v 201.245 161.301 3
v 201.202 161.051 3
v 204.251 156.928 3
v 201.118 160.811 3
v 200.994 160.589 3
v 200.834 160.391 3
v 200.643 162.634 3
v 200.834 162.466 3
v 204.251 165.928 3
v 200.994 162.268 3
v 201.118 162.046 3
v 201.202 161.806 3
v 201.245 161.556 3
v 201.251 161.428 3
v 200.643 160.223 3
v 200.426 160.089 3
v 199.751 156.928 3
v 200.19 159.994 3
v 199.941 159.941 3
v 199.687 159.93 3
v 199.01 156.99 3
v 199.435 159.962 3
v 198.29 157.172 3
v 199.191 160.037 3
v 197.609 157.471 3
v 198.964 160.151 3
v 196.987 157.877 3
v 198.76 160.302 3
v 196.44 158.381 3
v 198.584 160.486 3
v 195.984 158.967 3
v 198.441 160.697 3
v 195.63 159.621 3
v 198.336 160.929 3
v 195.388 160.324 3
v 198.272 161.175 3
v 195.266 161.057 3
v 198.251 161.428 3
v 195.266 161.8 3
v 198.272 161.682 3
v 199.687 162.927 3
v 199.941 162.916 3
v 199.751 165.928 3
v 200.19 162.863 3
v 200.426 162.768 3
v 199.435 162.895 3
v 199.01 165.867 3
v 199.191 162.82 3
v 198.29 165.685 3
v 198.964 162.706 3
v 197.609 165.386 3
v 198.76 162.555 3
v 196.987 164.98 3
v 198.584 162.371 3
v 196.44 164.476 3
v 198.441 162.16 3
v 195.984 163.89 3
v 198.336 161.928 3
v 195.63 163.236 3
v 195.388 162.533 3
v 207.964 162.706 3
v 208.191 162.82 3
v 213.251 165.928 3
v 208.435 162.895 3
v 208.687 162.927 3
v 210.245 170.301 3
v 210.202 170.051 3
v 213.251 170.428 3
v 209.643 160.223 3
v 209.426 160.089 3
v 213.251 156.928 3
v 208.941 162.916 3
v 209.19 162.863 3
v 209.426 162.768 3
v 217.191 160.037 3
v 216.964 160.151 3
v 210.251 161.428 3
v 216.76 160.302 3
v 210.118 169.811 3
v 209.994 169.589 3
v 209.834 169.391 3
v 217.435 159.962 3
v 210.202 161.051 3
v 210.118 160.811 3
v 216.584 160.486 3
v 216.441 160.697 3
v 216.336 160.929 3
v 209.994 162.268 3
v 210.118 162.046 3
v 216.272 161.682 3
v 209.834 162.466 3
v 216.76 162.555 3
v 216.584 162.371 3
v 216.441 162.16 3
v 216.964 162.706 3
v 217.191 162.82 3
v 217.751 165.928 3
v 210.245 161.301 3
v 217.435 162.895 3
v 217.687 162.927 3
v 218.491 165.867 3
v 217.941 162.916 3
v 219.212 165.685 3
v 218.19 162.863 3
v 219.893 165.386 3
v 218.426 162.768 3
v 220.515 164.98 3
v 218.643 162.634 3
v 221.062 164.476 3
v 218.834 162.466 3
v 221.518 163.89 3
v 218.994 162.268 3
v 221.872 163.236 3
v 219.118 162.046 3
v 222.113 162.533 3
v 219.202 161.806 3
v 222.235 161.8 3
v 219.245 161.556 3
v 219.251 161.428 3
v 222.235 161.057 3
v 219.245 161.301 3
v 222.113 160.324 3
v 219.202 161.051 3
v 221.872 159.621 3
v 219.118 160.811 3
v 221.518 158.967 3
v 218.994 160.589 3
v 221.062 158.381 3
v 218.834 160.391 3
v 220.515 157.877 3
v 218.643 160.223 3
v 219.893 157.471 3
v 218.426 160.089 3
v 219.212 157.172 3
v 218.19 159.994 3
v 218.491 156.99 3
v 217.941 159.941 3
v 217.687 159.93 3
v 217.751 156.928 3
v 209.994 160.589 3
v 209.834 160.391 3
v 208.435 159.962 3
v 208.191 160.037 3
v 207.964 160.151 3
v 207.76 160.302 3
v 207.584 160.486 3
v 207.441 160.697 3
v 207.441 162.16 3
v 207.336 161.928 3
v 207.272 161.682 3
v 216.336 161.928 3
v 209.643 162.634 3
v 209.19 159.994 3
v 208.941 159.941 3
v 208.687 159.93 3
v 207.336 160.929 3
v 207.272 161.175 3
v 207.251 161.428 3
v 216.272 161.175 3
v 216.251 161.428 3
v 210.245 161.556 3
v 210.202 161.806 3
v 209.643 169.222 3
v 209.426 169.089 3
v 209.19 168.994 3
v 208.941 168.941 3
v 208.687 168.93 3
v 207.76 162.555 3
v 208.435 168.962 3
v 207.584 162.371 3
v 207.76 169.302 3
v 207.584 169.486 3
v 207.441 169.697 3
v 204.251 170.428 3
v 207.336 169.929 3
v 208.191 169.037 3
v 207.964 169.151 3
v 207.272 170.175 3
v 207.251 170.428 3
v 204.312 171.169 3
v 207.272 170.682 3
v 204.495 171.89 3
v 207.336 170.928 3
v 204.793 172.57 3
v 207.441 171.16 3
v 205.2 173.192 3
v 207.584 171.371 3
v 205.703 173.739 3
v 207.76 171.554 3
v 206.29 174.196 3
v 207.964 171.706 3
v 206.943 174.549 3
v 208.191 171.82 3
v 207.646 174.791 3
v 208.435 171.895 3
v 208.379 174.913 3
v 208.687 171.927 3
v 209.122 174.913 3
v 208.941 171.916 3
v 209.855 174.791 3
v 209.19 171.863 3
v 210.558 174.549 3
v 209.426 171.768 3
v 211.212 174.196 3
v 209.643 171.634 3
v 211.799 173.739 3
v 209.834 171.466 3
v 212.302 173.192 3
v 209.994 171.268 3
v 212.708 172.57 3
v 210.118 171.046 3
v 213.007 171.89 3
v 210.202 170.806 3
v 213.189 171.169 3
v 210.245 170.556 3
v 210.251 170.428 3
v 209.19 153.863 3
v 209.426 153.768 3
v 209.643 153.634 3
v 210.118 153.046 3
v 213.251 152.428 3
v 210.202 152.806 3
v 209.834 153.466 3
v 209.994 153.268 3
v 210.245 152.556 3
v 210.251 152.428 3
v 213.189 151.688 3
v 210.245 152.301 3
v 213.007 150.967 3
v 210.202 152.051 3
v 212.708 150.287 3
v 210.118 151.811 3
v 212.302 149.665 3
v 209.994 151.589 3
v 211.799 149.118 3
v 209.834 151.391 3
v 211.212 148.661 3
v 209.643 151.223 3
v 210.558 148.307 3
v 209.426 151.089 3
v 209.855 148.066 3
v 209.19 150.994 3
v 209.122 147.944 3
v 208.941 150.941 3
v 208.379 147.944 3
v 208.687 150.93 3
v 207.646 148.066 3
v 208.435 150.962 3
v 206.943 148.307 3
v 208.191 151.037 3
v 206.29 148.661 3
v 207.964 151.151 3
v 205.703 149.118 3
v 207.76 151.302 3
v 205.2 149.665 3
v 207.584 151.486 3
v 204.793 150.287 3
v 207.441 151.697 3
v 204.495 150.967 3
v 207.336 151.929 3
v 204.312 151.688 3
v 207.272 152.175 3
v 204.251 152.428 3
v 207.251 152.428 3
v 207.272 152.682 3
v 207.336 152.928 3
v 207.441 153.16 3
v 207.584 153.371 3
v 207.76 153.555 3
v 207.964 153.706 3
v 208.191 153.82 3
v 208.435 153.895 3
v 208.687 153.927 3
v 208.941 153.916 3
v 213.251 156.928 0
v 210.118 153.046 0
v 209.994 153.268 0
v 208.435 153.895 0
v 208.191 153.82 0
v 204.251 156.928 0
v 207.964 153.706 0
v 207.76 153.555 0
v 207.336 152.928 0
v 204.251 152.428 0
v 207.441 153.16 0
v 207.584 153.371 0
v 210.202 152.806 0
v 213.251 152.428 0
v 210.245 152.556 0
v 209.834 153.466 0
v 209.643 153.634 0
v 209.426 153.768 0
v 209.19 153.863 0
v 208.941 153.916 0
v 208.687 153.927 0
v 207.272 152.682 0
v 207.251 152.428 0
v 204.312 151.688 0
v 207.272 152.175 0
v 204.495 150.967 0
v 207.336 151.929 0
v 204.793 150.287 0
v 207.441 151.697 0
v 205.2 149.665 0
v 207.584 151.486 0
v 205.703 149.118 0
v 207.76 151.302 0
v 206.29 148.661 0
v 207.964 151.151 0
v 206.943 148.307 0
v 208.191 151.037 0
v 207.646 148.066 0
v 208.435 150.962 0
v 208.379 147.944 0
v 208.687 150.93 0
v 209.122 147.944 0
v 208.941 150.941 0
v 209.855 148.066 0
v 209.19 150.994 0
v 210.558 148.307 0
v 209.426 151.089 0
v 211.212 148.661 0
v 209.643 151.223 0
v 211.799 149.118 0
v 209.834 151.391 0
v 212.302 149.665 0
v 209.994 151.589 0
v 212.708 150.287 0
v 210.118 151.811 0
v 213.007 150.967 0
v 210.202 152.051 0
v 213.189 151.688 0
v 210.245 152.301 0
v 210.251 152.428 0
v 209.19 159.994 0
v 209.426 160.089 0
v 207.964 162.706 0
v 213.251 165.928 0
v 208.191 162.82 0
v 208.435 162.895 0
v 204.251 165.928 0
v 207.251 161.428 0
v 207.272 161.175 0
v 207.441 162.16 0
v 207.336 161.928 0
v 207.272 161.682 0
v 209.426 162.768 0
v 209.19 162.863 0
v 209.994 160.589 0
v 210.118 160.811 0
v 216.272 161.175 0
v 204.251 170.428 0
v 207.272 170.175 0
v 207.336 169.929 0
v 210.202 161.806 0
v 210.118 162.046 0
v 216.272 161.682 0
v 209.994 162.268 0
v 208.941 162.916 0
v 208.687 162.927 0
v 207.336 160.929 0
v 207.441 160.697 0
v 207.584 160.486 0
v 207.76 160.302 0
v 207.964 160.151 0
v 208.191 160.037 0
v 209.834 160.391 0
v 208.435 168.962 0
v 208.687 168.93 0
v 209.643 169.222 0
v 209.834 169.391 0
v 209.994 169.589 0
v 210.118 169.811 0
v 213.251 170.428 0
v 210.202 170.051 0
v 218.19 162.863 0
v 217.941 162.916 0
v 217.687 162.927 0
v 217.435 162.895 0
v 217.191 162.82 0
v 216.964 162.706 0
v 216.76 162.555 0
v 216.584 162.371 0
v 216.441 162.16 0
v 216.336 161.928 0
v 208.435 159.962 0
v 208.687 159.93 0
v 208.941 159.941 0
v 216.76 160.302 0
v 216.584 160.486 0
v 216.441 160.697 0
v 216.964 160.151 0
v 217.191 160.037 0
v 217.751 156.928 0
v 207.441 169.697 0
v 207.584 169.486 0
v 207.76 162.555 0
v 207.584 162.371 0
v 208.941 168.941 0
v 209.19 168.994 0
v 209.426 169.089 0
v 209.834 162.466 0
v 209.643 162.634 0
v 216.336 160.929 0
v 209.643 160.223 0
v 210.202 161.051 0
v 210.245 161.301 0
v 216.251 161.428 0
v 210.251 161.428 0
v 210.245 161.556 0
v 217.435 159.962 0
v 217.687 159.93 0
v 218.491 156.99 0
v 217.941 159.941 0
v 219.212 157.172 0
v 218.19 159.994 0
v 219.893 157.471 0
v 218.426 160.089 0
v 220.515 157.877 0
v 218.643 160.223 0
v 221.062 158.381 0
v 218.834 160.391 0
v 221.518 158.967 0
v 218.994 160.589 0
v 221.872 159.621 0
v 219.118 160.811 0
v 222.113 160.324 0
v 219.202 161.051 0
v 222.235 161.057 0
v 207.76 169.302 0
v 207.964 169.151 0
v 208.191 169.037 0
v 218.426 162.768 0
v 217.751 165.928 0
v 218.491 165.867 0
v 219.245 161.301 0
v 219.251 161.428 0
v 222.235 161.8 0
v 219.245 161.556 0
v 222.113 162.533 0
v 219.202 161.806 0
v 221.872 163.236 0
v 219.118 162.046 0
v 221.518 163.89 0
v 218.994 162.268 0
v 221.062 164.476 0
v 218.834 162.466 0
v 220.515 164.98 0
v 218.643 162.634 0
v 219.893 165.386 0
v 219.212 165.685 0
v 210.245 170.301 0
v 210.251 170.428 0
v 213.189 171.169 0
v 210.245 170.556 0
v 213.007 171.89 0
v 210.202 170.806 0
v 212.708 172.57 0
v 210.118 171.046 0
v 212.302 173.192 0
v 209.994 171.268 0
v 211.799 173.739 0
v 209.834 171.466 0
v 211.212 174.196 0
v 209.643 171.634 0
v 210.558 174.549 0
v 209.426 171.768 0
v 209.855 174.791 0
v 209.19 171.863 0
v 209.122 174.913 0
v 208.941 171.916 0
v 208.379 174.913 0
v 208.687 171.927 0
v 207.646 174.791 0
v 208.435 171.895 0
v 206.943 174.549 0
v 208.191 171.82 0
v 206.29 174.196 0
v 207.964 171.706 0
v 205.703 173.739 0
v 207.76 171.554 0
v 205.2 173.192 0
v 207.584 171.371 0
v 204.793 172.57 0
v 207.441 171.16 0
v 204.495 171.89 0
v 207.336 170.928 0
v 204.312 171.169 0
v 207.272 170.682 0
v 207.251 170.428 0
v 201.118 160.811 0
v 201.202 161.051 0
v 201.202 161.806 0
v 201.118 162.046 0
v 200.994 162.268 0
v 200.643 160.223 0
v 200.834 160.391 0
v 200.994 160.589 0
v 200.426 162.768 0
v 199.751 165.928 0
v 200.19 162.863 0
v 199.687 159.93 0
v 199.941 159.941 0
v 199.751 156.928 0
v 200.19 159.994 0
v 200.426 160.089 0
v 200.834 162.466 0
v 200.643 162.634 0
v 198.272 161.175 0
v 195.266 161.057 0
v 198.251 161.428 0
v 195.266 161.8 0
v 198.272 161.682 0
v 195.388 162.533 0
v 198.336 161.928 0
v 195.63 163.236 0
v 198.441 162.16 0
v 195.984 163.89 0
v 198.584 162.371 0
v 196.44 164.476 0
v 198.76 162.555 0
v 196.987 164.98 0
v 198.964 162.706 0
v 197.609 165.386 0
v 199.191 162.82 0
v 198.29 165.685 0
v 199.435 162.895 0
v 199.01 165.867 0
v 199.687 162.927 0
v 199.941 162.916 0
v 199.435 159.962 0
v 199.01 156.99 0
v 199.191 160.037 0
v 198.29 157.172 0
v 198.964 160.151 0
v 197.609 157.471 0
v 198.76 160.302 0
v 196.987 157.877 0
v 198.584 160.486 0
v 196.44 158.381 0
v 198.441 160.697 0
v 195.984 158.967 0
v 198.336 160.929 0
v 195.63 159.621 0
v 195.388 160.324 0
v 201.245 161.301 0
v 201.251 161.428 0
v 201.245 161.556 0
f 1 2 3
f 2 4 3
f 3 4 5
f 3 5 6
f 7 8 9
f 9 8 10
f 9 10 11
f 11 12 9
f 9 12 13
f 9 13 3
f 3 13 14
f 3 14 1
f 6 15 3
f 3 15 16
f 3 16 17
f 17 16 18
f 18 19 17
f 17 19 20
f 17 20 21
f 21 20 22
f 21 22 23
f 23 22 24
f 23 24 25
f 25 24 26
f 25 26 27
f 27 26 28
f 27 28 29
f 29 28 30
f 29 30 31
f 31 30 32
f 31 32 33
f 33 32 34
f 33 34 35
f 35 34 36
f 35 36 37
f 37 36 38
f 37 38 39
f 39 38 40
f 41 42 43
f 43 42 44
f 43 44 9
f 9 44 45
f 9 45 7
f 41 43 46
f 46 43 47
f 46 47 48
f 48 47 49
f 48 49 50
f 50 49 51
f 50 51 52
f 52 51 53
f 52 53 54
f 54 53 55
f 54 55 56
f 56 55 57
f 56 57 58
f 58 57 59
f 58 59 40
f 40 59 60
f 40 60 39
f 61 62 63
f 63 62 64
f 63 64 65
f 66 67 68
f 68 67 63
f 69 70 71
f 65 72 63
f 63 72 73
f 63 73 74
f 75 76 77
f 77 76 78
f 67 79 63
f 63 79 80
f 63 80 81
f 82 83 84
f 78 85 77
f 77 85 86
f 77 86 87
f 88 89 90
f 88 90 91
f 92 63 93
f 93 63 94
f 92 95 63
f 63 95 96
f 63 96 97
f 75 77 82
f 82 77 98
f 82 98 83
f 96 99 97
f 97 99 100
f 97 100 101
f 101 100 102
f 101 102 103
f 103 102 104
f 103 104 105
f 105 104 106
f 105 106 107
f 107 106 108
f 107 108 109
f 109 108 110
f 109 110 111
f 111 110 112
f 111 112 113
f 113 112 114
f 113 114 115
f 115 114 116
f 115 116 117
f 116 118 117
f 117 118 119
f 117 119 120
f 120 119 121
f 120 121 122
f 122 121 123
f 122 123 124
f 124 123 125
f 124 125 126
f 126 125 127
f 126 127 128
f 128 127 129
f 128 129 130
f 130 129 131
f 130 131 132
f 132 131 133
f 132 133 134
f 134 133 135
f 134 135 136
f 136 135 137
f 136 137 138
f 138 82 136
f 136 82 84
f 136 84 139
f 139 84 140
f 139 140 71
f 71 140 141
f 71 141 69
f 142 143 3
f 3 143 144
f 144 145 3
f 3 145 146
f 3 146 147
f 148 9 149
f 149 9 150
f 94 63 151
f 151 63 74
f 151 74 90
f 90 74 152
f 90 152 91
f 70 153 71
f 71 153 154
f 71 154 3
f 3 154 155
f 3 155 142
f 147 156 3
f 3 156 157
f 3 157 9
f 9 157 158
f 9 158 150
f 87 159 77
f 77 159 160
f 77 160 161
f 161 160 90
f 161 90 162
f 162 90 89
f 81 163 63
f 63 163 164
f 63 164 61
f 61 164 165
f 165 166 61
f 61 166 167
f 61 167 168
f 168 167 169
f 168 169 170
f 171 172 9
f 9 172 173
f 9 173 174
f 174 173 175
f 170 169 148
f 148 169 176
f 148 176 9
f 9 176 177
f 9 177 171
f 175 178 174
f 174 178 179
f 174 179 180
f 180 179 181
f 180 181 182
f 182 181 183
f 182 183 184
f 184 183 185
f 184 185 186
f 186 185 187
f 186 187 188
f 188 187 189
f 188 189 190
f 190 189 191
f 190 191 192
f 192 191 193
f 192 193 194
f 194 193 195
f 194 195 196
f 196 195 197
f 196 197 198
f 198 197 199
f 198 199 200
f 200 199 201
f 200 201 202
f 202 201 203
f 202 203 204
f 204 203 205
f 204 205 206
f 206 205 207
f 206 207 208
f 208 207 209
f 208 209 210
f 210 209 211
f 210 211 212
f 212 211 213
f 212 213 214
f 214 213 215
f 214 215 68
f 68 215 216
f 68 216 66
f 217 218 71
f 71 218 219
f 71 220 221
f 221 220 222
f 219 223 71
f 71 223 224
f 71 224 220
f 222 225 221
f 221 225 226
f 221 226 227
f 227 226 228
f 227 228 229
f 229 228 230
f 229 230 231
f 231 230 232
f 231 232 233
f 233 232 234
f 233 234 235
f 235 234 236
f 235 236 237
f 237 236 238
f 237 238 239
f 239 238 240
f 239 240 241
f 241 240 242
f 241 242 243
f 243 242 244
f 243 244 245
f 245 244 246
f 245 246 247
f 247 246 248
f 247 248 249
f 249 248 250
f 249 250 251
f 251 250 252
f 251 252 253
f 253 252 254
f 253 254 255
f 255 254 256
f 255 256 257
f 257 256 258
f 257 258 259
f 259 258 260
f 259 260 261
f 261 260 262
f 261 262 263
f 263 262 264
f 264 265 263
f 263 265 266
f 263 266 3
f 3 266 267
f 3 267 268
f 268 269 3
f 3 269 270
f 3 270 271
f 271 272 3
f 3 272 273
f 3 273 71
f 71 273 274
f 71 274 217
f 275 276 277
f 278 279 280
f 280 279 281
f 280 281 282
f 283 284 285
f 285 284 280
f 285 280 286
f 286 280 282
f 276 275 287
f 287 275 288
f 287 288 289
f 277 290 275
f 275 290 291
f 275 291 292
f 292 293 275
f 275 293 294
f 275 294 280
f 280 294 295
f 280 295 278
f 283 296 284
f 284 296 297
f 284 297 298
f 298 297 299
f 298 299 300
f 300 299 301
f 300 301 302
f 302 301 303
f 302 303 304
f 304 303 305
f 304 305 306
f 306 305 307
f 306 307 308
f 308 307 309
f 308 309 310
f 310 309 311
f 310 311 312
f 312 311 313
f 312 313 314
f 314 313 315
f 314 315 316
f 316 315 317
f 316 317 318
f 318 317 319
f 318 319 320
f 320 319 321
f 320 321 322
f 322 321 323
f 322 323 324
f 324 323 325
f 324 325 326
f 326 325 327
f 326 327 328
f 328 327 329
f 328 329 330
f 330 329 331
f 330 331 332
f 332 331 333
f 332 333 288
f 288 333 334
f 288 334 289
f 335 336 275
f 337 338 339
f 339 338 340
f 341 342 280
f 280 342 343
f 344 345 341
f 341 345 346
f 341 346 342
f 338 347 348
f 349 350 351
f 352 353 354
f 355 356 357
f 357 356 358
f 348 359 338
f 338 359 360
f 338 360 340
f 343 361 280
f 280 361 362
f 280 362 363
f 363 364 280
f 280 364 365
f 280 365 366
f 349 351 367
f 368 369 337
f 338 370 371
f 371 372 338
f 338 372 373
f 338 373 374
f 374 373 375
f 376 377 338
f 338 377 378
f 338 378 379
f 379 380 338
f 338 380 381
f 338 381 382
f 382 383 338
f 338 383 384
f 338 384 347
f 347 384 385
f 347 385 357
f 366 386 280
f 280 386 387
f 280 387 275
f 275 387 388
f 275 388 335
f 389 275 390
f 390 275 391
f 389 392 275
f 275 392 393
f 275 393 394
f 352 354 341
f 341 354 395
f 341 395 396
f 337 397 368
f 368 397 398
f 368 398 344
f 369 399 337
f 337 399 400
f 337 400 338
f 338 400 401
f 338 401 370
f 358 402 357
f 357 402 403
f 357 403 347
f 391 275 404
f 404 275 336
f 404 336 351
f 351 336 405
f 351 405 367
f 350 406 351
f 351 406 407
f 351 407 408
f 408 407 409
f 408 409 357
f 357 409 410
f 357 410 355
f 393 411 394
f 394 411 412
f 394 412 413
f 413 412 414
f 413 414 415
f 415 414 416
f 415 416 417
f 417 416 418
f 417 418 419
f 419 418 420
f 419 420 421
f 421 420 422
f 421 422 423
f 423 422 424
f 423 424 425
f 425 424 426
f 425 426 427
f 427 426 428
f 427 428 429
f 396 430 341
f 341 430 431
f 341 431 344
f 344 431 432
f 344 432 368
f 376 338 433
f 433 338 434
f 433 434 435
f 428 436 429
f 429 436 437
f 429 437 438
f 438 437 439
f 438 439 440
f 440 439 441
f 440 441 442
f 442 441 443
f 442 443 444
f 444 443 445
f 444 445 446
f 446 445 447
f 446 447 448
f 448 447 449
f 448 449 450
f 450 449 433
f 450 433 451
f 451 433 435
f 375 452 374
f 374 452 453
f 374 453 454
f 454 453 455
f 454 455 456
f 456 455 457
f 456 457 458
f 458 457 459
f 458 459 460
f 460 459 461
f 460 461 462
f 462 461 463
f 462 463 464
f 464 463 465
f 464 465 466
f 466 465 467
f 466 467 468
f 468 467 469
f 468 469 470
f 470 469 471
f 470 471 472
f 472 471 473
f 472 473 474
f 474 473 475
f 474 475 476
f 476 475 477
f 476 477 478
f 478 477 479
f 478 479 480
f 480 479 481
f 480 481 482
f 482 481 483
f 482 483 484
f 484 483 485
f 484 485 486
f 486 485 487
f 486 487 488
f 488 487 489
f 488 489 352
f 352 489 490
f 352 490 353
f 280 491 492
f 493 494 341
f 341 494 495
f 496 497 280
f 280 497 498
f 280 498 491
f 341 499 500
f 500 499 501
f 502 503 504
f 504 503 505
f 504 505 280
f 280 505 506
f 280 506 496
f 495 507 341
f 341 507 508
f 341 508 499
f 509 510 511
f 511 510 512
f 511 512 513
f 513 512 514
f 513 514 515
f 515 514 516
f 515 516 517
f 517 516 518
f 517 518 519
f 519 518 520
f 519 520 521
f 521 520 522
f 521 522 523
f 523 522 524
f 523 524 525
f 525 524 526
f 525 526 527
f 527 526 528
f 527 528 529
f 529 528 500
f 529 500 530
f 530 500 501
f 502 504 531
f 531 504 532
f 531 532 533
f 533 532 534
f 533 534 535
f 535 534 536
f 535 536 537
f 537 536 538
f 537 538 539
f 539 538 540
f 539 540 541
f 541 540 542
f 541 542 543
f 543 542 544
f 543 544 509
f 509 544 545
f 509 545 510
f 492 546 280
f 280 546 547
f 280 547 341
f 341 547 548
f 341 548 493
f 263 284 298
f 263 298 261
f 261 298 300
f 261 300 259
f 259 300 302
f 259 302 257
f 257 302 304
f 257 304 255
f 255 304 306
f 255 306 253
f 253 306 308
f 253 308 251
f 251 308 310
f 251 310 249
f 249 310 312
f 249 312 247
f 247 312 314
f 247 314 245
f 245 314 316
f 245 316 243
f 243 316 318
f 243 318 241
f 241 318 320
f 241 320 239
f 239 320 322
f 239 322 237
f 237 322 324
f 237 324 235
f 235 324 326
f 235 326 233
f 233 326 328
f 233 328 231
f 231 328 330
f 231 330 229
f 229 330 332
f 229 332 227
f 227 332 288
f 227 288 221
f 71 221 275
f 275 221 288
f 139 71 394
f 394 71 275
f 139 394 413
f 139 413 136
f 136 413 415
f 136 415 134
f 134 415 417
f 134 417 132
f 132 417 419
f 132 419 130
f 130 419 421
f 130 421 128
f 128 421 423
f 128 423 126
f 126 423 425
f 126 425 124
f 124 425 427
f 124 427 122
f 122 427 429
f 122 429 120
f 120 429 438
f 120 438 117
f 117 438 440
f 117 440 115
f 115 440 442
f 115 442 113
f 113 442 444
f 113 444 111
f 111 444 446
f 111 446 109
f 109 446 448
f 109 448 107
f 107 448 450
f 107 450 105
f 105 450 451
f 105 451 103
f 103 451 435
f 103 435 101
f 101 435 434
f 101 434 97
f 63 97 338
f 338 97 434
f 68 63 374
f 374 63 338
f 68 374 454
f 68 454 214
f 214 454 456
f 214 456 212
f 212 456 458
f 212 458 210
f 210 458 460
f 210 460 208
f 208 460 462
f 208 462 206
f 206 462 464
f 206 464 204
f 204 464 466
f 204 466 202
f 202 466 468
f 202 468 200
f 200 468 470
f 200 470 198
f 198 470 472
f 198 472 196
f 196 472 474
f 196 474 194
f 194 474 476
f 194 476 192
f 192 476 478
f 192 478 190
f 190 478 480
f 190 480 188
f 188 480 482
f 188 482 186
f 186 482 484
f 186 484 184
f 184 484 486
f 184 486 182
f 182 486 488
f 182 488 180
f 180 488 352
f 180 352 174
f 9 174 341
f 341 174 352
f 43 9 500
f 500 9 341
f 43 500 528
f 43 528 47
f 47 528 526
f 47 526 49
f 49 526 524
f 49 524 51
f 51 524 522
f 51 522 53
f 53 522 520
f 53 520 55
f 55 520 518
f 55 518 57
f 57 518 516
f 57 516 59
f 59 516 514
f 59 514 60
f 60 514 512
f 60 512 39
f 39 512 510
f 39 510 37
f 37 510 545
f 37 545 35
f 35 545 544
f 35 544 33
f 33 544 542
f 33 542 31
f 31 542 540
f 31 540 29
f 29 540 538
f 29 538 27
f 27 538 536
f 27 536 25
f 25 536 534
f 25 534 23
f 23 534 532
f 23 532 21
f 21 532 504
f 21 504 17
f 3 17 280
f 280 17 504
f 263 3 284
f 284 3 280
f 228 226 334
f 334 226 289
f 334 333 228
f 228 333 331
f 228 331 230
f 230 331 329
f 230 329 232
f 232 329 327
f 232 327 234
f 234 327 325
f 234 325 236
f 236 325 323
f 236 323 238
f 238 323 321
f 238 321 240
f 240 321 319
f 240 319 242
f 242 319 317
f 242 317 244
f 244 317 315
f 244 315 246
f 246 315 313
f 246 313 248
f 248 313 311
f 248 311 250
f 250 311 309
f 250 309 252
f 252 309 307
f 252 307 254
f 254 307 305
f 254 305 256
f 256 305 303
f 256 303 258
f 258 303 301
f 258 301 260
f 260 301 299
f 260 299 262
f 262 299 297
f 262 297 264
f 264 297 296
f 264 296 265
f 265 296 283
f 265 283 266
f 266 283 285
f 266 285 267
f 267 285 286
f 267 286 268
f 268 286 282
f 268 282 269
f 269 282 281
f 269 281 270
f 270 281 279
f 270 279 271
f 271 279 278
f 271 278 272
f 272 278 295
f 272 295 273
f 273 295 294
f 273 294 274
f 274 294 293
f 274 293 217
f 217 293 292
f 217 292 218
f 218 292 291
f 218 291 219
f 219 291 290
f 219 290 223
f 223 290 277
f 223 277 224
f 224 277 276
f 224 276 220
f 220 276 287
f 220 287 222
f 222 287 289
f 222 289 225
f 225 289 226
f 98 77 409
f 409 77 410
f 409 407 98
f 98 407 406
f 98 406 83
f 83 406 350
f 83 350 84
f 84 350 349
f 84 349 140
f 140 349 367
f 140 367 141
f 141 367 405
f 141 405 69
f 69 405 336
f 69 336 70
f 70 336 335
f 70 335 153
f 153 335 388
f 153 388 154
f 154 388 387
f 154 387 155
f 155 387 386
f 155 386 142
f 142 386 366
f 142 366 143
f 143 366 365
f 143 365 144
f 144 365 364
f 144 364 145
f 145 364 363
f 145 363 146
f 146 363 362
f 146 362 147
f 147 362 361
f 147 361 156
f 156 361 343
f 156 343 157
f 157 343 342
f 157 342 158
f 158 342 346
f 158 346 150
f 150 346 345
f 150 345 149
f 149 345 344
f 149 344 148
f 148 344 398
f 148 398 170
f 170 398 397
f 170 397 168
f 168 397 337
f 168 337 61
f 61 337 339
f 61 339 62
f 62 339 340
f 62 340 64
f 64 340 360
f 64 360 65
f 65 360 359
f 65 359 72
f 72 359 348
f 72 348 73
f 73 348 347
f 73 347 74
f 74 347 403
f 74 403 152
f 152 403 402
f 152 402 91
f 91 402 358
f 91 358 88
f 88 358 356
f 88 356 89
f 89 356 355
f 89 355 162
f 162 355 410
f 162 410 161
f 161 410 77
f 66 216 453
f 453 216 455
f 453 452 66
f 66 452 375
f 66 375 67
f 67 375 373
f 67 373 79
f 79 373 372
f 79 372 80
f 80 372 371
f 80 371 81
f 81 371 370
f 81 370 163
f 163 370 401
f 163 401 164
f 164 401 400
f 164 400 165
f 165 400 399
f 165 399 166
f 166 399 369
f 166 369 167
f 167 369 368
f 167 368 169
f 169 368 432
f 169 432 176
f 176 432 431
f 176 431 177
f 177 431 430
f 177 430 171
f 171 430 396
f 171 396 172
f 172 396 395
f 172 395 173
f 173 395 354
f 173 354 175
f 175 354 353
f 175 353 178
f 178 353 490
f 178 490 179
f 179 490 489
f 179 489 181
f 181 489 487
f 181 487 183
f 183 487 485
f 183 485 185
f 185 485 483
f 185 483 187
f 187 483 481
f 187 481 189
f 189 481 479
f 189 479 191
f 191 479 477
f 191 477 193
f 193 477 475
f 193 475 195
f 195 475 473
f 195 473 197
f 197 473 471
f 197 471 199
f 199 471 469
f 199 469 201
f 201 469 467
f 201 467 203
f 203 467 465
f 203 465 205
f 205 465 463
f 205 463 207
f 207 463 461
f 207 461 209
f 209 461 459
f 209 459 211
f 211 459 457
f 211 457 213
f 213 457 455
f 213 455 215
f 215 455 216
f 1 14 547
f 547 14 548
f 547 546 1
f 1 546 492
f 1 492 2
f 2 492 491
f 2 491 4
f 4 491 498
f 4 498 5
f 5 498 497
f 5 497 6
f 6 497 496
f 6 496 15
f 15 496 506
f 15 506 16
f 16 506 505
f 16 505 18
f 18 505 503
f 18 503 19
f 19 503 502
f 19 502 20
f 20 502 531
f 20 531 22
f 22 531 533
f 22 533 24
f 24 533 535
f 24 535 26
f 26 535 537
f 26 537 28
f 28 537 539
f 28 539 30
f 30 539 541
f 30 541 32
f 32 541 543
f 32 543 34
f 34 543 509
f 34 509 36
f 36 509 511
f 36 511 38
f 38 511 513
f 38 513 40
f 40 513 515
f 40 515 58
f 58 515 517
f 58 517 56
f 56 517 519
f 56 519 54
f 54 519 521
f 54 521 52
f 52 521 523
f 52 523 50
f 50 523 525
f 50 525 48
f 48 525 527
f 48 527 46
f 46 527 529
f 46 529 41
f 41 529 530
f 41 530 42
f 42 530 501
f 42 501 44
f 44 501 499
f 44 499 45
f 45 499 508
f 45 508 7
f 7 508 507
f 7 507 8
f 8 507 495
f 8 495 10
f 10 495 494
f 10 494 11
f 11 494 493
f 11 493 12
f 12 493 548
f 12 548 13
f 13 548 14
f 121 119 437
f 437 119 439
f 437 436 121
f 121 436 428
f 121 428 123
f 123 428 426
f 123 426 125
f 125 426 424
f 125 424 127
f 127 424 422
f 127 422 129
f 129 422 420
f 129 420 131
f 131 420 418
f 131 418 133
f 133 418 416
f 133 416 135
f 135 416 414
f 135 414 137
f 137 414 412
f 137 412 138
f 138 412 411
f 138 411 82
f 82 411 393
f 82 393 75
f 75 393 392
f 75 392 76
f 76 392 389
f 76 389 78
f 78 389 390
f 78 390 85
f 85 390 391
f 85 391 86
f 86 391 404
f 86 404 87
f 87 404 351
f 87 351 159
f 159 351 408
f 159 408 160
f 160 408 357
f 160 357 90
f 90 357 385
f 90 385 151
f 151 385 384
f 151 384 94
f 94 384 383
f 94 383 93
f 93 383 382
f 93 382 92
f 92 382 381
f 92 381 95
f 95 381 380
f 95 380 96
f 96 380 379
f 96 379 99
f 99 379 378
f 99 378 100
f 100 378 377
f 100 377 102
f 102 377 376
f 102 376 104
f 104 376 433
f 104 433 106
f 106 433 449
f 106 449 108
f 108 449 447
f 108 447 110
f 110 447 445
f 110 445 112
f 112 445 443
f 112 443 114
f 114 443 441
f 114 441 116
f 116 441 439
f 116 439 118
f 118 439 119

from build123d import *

# Parameters (mm, degrees)
MODEL_R                 = 1.5
SALIENTE_EXTRUIR1_DEPTH = 3


with BuildPart() as part:
    # Model → Saliente-Extruir1 (new body)
    with BuildSketch(Plane.XY):
        with BuildLine():
            Line((213.25077615, 165.928489513), (213.25077615, 170.428489513))
            ThreePointArc((213.25077615, 170.428489513), (208.75077615, 174.928489513), (204.25077615, 170.428489513))
            Line((204.25077615, 170.428489513), (204.25077615, 165.928489513))
            Line((204.25077615, 165.928489513), (199.75077615, 165.928489513))
            ThreePointArc((199.75077615, 165.928489513), (195.25077615, 161.428489513), (199.75077615, 156.928489513))
            Line((199.75077615, 156.928489513), (204.25077615, 156.928489513))
            Line((204.25077615, 156.928489513), (204.25077615, 152.428489513))
            ThreePointArc((204.25077615, 152.428489513), (208.75077615, 147.928489513), (213.25077615, 152.428489513))
            Line((213.25077615, 152.428489513), (213.25077615, 156.928489513))
            Line((213.25077615, 156.928489513), (217.75077615, 156.928489513))
            ThreePointArc((217.75077615, 156.928489513), (222.25077615, 161.428489513), (217.75077615, 165.928489513))
            Line((217.75077615, 165.928489513), (213.25077615, 165.928489513))
        make_face()
        with Locations((208.75077615, 152.428489513)):
            Circle(MODEL_R, mode=Mode.SUBTRACT)
        with Locations((208.75077615, 161.428489513)):
            Circle(MODEL_R, mode=Mode.SUBTRACT)
        with Locations((208.75077615, 170.428489513)):
            Circle(MODEL_R, mode=Mode.SUBTRACT)
        with Locations((199.75077615, 161.428489513)):
            Circle(MODEL_R, mode=Mode.SUBTRACT)
        with Locations((217.75077615, 161.428489513)):
            Circle(MODEL_R, mode=Mode.SUBTRACT)
    extrude(amount=SALIENTE_EXTRUIR1_DEPTH)


solid = part.part
